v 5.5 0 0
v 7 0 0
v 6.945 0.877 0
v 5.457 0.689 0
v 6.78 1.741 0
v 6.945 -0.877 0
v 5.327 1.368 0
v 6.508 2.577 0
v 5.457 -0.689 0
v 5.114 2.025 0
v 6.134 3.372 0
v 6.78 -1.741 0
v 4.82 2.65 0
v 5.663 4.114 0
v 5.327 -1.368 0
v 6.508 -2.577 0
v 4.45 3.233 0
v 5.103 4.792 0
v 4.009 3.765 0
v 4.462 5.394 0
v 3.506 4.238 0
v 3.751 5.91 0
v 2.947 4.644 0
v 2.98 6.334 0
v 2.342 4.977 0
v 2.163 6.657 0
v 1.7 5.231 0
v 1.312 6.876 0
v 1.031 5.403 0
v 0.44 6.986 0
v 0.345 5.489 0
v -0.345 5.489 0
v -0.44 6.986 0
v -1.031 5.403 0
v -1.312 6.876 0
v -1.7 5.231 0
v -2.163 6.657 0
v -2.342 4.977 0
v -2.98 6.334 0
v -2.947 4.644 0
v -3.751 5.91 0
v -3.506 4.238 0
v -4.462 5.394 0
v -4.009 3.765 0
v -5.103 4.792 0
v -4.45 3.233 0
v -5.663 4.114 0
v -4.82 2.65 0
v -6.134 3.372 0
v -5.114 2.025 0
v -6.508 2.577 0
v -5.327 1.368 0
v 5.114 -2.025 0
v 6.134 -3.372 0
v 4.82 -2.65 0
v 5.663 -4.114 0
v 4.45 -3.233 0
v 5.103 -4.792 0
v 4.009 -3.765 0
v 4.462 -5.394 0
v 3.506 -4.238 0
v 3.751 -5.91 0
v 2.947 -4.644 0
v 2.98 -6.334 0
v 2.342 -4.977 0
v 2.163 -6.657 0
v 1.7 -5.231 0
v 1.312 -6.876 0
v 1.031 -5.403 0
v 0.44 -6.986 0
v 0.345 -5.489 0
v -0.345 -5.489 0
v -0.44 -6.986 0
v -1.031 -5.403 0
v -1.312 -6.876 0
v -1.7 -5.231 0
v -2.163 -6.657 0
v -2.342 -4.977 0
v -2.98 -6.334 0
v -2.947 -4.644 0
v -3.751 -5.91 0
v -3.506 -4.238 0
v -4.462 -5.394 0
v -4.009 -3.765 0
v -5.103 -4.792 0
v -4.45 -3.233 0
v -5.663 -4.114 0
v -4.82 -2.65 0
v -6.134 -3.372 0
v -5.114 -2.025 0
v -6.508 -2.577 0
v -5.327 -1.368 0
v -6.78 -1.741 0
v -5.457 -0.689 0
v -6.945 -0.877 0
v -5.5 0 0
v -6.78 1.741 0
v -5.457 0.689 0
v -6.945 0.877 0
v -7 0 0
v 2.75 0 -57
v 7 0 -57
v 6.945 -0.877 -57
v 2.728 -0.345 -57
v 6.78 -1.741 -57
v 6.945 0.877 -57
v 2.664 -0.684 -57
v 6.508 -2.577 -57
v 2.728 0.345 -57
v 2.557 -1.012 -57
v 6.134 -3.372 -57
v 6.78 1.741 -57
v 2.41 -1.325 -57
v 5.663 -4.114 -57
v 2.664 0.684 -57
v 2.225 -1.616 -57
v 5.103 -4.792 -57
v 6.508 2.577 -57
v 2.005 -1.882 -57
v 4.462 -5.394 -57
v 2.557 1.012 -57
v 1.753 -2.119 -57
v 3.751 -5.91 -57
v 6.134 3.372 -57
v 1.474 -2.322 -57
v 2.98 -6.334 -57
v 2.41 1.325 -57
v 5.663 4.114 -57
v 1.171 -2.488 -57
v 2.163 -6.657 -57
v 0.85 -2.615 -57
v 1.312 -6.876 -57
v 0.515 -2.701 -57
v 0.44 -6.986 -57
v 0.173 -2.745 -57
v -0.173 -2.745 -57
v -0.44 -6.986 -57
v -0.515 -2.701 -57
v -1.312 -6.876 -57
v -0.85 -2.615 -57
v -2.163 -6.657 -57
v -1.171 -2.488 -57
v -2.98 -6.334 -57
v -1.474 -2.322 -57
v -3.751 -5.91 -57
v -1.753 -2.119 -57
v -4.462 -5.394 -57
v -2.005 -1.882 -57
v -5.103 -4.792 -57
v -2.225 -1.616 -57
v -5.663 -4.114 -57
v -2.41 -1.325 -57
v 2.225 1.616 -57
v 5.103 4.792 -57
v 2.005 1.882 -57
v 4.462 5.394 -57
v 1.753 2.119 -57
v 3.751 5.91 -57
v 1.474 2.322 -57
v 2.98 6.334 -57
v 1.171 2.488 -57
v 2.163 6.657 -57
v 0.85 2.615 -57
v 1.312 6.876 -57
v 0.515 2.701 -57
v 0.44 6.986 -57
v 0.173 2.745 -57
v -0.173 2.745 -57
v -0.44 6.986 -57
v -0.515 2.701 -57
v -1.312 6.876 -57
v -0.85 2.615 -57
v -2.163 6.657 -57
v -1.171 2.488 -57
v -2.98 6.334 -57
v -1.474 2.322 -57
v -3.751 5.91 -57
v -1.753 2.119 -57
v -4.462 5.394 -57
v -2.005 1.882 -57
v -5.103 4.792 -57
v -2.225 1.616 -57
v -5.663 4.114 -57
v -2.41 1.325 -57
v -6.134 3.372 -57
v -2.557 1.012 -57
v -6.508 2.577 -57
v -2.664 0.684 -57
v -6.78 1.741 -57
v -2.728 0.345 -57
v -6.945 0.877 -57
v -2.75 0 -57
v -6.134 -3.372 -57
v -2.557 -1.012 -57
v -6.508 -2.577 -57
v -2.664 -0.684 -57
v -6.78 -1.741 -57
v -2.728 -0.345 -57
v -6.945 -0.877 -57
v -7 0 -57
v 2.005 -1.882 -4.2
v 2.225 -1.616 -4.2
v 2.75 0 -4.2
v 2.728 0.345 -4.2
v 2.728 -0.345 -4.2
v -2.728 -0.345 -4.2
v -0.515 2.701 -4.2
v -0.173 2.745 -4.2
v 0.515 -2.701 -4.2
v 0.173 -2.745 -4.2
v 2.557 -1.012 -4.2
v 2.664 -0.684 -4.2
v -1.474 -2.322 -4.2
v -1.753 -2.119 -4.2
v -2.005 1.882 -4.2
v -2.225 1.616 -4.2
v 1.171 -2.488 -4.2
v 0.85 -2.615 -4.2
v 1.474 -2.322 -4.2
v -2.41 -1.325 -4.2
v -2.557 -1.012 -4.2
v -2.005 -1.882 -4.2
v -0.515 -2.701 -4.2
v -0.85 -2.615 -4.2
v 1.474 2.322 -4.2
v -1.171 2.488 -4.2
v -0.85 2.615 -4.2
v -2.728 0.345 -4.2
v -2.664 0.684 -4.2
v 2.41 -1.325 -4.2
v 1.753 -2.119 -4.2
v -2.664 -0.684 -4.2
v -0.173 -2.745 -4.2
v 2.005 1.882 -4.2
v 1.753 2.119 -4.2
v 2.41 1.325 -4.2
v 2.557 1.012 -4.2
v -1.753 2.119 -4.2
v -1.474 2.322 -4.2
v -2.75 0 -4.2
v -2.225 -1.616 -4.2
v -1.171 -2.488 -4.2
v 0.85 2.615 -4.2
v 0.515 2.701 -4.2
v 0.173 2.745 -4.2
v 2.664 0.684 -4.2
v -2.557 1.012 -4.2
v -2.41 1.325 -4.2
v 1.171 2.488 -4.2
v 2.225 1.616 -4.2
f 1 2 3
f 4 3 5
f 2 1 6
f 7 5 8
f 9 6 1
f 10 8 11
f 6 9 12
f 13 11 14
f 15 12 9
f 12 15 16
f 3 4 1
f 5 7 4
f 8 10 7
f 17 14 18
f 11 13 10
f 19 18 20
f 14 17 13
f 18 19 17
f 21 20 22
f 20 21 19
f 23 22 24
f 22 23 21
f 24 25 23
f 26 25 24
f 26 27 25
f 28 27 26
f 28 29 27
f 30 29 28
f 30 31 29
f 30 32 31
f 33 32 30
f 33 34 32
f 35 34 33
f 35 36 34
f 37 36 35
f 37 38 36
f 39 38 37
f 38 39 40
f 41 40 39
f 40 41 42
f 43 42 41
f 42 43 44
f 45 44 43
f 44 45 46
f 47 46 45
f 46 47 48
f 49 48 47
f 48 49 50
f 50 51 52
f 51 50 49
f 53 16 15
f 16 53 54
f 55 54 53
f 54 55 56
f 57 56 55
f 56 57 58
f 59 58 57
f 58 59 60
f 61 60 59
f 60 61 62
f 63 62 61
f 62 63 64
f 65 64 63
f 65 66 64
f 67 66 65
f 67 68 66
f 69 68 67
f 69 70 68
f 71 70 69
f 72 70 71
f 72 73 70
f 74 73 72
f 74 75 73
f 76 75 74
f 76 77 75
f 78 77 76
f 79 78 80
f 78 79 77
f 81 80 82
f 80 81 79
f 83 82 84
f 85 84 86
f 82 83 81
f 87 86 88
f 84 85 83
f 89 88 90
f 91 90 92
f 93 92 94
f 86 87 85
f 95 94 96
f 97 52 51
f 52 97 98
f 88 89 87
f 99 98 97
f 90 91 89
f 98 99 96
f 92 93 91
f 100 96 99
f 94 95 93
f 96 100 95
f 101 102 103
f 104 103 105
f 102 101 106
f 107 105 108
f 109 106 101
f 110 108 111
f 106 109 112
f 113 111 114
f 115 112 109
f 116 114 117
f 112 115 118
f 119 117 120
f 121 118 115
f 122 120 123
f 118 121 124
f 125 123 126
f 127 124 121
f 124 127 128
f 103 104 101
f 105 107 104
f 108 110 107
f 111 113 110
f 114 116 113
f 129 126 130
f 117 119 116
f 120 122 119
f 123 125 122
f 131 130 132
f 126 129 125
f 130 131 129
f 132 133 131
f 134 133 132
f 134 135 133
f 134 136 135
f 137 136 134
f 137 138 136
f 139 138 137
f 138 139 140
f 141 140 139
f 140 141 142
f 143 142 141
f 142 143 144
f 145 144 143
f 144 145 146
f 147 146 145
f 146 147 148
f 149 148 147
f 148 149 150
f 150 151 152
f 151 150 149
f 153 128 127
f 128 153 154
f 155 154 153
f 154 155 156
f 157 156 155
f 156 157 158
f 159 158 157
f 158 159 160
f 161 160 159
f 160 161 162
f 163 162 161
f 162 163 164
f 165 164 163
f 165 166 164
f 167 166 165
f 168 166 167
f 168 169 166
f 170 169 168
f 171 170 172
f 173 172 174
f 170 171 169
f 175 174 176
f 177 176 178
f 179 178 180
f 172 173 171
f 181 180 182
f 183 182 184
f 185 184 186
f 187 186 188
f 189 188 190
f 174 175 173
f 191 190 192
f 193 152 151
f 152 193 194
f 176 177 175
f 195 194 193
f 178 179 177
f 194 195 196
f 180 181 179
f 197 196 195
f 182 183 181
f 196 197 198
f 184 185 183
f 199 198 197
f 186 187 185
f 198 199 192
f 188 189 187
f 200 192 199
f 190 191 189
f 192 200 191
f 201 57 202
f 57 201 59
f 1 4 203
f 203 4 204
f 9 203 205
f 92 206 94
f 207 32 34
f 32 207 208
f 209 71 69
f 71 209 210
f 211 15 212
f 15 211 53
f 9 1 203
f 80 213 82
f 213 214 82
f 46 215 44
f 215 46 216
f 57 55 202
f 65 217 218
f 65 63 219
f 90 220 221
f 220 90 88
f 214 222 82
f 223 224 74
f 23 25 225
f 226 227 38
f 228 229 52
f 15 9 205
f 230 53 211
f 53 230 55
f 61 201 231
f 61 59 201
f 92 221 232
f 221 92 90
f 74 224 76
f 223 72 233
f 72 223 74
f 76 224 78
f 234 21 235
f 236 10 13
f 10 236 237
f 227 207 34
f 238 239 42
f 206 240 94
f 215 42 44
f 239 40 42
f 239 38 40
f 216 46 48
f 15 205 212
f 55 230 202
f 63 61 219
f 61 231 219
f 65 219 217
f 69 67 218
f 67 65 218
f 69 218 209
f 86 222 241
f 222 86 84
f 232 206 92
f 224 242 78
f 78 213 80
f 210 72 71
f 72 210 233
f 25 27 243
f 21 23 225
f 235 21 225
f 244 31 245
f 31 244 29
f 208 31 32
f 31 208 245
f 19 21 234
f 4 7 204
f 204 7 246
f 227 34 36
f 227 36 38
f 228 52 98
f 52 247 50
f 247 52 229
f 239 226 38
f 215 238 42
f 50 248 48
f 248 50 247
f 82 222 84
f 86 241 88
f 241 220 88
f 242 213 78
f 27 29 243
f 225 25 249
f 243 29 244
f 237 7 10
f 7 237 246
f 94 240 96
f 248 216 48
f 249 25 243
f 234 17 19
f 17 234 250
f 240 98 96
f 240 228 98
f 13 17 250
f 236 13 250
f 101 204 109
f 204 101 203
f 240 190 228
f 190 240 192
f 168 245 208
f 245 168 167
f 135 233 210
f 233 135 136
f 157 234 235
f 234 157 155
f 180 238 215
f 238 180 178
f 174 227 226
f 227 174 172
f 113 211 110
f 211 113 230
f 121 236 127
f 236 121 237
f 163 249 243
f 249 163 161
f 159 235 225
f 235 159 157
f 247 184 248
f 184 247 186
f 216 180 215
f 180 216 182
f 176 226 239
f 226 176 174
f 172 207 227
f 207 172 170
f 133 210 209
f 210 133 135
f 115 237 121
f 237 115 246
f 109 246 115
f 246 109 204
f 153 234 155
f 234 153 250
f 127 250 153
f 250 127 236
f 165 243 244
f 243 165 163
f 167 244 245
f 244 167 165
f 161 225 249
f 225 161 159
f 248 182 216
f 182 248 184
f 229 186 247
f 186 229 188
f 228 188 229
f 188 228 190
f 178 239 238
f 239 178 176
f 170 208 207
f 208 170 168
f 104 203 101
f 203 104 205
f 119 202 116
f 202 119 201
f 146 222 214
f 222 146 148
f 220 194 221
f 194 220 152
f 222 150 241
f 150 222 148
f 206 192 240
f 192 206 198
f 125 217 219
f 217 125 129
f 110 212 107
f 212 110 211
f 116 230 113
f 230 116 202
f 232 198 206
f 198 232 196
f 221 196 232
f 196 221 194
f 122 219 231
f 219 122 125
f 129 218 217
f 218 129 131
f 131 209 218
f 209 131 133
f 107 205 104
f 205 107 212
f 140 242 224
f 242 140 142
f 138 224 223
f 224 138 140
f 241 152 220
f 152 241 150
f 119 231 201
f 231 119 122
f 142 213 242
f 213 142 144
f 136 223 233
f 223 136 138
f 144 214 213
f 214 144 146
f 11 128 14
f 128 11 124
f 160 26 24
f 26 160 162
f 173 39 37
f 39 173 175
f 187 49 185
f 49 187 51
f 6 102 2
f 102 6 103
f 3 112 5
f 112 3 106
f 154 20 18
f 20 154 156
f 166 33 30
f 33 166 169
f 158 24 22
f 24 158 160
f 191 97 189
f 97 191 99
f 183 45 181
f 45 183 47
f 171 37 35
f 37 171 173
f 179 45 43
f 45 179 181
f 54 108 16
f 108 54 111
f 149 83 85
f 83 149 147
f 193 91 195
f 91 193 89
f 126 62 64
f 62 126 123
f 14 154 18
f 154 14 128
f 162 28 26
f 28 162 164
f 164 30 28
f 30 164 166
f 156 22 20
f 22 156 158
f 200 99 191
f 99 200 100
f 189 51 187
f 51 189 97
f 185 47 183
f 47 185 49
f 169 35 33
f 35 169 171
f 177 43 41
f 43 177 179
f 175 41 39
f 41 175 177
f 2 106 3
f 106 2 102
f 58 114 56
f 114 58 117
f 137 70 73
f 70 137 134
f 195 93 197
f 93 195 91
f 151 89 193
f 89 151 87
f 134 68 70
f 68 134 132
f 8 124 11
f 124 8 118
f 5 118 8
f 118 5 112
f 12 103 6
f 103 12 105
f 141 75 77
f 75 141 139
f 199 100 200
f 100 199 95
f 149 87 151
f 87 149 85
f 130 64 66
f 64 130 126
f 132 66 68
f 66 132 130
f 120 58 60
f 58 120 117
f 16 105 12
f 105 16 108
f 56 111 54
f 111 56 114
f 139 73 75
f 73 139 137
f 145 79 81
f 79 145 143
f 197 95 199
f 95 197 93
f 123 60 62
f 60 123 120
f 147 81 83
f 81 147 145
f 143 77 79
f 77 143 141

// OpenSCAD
$fn = 50;


difference() {
	union() {
		translate(v = [0, 0, -57.0000000000]) {
			cylinder(h = 57, r = 7.0000000000);
		}
		cylinder(h = 0, r = 17.0000000000);
	}
	union() {
		translate(v = [0, 0, 0]) {
			rotate(a = [0, 0, 0]) {
				difference() {
					union() {
						#translate(v = [0, 0, -57.0000000000]) {
							cylinder(h = 57, r = 2.2500000000);
						}
						#translate(v = [0, 0, -4.2000000000]) {
							cylinder(h = 4.2000000000, r = 7.0000000000, r1 = 2.7500000000, r2 = 5.5000000000);
						}
						#translate(v = [0, 0, -57.0000000000]) {
							cylinder(h = 57, r = 2.7500000000);
						}
						#translate(v = [0, 0, -57.0000000000]) {
							cylinder(h = 57, r = 2.2500000000);
						}
					}
					union();
				}
			}
		}
	}
}
